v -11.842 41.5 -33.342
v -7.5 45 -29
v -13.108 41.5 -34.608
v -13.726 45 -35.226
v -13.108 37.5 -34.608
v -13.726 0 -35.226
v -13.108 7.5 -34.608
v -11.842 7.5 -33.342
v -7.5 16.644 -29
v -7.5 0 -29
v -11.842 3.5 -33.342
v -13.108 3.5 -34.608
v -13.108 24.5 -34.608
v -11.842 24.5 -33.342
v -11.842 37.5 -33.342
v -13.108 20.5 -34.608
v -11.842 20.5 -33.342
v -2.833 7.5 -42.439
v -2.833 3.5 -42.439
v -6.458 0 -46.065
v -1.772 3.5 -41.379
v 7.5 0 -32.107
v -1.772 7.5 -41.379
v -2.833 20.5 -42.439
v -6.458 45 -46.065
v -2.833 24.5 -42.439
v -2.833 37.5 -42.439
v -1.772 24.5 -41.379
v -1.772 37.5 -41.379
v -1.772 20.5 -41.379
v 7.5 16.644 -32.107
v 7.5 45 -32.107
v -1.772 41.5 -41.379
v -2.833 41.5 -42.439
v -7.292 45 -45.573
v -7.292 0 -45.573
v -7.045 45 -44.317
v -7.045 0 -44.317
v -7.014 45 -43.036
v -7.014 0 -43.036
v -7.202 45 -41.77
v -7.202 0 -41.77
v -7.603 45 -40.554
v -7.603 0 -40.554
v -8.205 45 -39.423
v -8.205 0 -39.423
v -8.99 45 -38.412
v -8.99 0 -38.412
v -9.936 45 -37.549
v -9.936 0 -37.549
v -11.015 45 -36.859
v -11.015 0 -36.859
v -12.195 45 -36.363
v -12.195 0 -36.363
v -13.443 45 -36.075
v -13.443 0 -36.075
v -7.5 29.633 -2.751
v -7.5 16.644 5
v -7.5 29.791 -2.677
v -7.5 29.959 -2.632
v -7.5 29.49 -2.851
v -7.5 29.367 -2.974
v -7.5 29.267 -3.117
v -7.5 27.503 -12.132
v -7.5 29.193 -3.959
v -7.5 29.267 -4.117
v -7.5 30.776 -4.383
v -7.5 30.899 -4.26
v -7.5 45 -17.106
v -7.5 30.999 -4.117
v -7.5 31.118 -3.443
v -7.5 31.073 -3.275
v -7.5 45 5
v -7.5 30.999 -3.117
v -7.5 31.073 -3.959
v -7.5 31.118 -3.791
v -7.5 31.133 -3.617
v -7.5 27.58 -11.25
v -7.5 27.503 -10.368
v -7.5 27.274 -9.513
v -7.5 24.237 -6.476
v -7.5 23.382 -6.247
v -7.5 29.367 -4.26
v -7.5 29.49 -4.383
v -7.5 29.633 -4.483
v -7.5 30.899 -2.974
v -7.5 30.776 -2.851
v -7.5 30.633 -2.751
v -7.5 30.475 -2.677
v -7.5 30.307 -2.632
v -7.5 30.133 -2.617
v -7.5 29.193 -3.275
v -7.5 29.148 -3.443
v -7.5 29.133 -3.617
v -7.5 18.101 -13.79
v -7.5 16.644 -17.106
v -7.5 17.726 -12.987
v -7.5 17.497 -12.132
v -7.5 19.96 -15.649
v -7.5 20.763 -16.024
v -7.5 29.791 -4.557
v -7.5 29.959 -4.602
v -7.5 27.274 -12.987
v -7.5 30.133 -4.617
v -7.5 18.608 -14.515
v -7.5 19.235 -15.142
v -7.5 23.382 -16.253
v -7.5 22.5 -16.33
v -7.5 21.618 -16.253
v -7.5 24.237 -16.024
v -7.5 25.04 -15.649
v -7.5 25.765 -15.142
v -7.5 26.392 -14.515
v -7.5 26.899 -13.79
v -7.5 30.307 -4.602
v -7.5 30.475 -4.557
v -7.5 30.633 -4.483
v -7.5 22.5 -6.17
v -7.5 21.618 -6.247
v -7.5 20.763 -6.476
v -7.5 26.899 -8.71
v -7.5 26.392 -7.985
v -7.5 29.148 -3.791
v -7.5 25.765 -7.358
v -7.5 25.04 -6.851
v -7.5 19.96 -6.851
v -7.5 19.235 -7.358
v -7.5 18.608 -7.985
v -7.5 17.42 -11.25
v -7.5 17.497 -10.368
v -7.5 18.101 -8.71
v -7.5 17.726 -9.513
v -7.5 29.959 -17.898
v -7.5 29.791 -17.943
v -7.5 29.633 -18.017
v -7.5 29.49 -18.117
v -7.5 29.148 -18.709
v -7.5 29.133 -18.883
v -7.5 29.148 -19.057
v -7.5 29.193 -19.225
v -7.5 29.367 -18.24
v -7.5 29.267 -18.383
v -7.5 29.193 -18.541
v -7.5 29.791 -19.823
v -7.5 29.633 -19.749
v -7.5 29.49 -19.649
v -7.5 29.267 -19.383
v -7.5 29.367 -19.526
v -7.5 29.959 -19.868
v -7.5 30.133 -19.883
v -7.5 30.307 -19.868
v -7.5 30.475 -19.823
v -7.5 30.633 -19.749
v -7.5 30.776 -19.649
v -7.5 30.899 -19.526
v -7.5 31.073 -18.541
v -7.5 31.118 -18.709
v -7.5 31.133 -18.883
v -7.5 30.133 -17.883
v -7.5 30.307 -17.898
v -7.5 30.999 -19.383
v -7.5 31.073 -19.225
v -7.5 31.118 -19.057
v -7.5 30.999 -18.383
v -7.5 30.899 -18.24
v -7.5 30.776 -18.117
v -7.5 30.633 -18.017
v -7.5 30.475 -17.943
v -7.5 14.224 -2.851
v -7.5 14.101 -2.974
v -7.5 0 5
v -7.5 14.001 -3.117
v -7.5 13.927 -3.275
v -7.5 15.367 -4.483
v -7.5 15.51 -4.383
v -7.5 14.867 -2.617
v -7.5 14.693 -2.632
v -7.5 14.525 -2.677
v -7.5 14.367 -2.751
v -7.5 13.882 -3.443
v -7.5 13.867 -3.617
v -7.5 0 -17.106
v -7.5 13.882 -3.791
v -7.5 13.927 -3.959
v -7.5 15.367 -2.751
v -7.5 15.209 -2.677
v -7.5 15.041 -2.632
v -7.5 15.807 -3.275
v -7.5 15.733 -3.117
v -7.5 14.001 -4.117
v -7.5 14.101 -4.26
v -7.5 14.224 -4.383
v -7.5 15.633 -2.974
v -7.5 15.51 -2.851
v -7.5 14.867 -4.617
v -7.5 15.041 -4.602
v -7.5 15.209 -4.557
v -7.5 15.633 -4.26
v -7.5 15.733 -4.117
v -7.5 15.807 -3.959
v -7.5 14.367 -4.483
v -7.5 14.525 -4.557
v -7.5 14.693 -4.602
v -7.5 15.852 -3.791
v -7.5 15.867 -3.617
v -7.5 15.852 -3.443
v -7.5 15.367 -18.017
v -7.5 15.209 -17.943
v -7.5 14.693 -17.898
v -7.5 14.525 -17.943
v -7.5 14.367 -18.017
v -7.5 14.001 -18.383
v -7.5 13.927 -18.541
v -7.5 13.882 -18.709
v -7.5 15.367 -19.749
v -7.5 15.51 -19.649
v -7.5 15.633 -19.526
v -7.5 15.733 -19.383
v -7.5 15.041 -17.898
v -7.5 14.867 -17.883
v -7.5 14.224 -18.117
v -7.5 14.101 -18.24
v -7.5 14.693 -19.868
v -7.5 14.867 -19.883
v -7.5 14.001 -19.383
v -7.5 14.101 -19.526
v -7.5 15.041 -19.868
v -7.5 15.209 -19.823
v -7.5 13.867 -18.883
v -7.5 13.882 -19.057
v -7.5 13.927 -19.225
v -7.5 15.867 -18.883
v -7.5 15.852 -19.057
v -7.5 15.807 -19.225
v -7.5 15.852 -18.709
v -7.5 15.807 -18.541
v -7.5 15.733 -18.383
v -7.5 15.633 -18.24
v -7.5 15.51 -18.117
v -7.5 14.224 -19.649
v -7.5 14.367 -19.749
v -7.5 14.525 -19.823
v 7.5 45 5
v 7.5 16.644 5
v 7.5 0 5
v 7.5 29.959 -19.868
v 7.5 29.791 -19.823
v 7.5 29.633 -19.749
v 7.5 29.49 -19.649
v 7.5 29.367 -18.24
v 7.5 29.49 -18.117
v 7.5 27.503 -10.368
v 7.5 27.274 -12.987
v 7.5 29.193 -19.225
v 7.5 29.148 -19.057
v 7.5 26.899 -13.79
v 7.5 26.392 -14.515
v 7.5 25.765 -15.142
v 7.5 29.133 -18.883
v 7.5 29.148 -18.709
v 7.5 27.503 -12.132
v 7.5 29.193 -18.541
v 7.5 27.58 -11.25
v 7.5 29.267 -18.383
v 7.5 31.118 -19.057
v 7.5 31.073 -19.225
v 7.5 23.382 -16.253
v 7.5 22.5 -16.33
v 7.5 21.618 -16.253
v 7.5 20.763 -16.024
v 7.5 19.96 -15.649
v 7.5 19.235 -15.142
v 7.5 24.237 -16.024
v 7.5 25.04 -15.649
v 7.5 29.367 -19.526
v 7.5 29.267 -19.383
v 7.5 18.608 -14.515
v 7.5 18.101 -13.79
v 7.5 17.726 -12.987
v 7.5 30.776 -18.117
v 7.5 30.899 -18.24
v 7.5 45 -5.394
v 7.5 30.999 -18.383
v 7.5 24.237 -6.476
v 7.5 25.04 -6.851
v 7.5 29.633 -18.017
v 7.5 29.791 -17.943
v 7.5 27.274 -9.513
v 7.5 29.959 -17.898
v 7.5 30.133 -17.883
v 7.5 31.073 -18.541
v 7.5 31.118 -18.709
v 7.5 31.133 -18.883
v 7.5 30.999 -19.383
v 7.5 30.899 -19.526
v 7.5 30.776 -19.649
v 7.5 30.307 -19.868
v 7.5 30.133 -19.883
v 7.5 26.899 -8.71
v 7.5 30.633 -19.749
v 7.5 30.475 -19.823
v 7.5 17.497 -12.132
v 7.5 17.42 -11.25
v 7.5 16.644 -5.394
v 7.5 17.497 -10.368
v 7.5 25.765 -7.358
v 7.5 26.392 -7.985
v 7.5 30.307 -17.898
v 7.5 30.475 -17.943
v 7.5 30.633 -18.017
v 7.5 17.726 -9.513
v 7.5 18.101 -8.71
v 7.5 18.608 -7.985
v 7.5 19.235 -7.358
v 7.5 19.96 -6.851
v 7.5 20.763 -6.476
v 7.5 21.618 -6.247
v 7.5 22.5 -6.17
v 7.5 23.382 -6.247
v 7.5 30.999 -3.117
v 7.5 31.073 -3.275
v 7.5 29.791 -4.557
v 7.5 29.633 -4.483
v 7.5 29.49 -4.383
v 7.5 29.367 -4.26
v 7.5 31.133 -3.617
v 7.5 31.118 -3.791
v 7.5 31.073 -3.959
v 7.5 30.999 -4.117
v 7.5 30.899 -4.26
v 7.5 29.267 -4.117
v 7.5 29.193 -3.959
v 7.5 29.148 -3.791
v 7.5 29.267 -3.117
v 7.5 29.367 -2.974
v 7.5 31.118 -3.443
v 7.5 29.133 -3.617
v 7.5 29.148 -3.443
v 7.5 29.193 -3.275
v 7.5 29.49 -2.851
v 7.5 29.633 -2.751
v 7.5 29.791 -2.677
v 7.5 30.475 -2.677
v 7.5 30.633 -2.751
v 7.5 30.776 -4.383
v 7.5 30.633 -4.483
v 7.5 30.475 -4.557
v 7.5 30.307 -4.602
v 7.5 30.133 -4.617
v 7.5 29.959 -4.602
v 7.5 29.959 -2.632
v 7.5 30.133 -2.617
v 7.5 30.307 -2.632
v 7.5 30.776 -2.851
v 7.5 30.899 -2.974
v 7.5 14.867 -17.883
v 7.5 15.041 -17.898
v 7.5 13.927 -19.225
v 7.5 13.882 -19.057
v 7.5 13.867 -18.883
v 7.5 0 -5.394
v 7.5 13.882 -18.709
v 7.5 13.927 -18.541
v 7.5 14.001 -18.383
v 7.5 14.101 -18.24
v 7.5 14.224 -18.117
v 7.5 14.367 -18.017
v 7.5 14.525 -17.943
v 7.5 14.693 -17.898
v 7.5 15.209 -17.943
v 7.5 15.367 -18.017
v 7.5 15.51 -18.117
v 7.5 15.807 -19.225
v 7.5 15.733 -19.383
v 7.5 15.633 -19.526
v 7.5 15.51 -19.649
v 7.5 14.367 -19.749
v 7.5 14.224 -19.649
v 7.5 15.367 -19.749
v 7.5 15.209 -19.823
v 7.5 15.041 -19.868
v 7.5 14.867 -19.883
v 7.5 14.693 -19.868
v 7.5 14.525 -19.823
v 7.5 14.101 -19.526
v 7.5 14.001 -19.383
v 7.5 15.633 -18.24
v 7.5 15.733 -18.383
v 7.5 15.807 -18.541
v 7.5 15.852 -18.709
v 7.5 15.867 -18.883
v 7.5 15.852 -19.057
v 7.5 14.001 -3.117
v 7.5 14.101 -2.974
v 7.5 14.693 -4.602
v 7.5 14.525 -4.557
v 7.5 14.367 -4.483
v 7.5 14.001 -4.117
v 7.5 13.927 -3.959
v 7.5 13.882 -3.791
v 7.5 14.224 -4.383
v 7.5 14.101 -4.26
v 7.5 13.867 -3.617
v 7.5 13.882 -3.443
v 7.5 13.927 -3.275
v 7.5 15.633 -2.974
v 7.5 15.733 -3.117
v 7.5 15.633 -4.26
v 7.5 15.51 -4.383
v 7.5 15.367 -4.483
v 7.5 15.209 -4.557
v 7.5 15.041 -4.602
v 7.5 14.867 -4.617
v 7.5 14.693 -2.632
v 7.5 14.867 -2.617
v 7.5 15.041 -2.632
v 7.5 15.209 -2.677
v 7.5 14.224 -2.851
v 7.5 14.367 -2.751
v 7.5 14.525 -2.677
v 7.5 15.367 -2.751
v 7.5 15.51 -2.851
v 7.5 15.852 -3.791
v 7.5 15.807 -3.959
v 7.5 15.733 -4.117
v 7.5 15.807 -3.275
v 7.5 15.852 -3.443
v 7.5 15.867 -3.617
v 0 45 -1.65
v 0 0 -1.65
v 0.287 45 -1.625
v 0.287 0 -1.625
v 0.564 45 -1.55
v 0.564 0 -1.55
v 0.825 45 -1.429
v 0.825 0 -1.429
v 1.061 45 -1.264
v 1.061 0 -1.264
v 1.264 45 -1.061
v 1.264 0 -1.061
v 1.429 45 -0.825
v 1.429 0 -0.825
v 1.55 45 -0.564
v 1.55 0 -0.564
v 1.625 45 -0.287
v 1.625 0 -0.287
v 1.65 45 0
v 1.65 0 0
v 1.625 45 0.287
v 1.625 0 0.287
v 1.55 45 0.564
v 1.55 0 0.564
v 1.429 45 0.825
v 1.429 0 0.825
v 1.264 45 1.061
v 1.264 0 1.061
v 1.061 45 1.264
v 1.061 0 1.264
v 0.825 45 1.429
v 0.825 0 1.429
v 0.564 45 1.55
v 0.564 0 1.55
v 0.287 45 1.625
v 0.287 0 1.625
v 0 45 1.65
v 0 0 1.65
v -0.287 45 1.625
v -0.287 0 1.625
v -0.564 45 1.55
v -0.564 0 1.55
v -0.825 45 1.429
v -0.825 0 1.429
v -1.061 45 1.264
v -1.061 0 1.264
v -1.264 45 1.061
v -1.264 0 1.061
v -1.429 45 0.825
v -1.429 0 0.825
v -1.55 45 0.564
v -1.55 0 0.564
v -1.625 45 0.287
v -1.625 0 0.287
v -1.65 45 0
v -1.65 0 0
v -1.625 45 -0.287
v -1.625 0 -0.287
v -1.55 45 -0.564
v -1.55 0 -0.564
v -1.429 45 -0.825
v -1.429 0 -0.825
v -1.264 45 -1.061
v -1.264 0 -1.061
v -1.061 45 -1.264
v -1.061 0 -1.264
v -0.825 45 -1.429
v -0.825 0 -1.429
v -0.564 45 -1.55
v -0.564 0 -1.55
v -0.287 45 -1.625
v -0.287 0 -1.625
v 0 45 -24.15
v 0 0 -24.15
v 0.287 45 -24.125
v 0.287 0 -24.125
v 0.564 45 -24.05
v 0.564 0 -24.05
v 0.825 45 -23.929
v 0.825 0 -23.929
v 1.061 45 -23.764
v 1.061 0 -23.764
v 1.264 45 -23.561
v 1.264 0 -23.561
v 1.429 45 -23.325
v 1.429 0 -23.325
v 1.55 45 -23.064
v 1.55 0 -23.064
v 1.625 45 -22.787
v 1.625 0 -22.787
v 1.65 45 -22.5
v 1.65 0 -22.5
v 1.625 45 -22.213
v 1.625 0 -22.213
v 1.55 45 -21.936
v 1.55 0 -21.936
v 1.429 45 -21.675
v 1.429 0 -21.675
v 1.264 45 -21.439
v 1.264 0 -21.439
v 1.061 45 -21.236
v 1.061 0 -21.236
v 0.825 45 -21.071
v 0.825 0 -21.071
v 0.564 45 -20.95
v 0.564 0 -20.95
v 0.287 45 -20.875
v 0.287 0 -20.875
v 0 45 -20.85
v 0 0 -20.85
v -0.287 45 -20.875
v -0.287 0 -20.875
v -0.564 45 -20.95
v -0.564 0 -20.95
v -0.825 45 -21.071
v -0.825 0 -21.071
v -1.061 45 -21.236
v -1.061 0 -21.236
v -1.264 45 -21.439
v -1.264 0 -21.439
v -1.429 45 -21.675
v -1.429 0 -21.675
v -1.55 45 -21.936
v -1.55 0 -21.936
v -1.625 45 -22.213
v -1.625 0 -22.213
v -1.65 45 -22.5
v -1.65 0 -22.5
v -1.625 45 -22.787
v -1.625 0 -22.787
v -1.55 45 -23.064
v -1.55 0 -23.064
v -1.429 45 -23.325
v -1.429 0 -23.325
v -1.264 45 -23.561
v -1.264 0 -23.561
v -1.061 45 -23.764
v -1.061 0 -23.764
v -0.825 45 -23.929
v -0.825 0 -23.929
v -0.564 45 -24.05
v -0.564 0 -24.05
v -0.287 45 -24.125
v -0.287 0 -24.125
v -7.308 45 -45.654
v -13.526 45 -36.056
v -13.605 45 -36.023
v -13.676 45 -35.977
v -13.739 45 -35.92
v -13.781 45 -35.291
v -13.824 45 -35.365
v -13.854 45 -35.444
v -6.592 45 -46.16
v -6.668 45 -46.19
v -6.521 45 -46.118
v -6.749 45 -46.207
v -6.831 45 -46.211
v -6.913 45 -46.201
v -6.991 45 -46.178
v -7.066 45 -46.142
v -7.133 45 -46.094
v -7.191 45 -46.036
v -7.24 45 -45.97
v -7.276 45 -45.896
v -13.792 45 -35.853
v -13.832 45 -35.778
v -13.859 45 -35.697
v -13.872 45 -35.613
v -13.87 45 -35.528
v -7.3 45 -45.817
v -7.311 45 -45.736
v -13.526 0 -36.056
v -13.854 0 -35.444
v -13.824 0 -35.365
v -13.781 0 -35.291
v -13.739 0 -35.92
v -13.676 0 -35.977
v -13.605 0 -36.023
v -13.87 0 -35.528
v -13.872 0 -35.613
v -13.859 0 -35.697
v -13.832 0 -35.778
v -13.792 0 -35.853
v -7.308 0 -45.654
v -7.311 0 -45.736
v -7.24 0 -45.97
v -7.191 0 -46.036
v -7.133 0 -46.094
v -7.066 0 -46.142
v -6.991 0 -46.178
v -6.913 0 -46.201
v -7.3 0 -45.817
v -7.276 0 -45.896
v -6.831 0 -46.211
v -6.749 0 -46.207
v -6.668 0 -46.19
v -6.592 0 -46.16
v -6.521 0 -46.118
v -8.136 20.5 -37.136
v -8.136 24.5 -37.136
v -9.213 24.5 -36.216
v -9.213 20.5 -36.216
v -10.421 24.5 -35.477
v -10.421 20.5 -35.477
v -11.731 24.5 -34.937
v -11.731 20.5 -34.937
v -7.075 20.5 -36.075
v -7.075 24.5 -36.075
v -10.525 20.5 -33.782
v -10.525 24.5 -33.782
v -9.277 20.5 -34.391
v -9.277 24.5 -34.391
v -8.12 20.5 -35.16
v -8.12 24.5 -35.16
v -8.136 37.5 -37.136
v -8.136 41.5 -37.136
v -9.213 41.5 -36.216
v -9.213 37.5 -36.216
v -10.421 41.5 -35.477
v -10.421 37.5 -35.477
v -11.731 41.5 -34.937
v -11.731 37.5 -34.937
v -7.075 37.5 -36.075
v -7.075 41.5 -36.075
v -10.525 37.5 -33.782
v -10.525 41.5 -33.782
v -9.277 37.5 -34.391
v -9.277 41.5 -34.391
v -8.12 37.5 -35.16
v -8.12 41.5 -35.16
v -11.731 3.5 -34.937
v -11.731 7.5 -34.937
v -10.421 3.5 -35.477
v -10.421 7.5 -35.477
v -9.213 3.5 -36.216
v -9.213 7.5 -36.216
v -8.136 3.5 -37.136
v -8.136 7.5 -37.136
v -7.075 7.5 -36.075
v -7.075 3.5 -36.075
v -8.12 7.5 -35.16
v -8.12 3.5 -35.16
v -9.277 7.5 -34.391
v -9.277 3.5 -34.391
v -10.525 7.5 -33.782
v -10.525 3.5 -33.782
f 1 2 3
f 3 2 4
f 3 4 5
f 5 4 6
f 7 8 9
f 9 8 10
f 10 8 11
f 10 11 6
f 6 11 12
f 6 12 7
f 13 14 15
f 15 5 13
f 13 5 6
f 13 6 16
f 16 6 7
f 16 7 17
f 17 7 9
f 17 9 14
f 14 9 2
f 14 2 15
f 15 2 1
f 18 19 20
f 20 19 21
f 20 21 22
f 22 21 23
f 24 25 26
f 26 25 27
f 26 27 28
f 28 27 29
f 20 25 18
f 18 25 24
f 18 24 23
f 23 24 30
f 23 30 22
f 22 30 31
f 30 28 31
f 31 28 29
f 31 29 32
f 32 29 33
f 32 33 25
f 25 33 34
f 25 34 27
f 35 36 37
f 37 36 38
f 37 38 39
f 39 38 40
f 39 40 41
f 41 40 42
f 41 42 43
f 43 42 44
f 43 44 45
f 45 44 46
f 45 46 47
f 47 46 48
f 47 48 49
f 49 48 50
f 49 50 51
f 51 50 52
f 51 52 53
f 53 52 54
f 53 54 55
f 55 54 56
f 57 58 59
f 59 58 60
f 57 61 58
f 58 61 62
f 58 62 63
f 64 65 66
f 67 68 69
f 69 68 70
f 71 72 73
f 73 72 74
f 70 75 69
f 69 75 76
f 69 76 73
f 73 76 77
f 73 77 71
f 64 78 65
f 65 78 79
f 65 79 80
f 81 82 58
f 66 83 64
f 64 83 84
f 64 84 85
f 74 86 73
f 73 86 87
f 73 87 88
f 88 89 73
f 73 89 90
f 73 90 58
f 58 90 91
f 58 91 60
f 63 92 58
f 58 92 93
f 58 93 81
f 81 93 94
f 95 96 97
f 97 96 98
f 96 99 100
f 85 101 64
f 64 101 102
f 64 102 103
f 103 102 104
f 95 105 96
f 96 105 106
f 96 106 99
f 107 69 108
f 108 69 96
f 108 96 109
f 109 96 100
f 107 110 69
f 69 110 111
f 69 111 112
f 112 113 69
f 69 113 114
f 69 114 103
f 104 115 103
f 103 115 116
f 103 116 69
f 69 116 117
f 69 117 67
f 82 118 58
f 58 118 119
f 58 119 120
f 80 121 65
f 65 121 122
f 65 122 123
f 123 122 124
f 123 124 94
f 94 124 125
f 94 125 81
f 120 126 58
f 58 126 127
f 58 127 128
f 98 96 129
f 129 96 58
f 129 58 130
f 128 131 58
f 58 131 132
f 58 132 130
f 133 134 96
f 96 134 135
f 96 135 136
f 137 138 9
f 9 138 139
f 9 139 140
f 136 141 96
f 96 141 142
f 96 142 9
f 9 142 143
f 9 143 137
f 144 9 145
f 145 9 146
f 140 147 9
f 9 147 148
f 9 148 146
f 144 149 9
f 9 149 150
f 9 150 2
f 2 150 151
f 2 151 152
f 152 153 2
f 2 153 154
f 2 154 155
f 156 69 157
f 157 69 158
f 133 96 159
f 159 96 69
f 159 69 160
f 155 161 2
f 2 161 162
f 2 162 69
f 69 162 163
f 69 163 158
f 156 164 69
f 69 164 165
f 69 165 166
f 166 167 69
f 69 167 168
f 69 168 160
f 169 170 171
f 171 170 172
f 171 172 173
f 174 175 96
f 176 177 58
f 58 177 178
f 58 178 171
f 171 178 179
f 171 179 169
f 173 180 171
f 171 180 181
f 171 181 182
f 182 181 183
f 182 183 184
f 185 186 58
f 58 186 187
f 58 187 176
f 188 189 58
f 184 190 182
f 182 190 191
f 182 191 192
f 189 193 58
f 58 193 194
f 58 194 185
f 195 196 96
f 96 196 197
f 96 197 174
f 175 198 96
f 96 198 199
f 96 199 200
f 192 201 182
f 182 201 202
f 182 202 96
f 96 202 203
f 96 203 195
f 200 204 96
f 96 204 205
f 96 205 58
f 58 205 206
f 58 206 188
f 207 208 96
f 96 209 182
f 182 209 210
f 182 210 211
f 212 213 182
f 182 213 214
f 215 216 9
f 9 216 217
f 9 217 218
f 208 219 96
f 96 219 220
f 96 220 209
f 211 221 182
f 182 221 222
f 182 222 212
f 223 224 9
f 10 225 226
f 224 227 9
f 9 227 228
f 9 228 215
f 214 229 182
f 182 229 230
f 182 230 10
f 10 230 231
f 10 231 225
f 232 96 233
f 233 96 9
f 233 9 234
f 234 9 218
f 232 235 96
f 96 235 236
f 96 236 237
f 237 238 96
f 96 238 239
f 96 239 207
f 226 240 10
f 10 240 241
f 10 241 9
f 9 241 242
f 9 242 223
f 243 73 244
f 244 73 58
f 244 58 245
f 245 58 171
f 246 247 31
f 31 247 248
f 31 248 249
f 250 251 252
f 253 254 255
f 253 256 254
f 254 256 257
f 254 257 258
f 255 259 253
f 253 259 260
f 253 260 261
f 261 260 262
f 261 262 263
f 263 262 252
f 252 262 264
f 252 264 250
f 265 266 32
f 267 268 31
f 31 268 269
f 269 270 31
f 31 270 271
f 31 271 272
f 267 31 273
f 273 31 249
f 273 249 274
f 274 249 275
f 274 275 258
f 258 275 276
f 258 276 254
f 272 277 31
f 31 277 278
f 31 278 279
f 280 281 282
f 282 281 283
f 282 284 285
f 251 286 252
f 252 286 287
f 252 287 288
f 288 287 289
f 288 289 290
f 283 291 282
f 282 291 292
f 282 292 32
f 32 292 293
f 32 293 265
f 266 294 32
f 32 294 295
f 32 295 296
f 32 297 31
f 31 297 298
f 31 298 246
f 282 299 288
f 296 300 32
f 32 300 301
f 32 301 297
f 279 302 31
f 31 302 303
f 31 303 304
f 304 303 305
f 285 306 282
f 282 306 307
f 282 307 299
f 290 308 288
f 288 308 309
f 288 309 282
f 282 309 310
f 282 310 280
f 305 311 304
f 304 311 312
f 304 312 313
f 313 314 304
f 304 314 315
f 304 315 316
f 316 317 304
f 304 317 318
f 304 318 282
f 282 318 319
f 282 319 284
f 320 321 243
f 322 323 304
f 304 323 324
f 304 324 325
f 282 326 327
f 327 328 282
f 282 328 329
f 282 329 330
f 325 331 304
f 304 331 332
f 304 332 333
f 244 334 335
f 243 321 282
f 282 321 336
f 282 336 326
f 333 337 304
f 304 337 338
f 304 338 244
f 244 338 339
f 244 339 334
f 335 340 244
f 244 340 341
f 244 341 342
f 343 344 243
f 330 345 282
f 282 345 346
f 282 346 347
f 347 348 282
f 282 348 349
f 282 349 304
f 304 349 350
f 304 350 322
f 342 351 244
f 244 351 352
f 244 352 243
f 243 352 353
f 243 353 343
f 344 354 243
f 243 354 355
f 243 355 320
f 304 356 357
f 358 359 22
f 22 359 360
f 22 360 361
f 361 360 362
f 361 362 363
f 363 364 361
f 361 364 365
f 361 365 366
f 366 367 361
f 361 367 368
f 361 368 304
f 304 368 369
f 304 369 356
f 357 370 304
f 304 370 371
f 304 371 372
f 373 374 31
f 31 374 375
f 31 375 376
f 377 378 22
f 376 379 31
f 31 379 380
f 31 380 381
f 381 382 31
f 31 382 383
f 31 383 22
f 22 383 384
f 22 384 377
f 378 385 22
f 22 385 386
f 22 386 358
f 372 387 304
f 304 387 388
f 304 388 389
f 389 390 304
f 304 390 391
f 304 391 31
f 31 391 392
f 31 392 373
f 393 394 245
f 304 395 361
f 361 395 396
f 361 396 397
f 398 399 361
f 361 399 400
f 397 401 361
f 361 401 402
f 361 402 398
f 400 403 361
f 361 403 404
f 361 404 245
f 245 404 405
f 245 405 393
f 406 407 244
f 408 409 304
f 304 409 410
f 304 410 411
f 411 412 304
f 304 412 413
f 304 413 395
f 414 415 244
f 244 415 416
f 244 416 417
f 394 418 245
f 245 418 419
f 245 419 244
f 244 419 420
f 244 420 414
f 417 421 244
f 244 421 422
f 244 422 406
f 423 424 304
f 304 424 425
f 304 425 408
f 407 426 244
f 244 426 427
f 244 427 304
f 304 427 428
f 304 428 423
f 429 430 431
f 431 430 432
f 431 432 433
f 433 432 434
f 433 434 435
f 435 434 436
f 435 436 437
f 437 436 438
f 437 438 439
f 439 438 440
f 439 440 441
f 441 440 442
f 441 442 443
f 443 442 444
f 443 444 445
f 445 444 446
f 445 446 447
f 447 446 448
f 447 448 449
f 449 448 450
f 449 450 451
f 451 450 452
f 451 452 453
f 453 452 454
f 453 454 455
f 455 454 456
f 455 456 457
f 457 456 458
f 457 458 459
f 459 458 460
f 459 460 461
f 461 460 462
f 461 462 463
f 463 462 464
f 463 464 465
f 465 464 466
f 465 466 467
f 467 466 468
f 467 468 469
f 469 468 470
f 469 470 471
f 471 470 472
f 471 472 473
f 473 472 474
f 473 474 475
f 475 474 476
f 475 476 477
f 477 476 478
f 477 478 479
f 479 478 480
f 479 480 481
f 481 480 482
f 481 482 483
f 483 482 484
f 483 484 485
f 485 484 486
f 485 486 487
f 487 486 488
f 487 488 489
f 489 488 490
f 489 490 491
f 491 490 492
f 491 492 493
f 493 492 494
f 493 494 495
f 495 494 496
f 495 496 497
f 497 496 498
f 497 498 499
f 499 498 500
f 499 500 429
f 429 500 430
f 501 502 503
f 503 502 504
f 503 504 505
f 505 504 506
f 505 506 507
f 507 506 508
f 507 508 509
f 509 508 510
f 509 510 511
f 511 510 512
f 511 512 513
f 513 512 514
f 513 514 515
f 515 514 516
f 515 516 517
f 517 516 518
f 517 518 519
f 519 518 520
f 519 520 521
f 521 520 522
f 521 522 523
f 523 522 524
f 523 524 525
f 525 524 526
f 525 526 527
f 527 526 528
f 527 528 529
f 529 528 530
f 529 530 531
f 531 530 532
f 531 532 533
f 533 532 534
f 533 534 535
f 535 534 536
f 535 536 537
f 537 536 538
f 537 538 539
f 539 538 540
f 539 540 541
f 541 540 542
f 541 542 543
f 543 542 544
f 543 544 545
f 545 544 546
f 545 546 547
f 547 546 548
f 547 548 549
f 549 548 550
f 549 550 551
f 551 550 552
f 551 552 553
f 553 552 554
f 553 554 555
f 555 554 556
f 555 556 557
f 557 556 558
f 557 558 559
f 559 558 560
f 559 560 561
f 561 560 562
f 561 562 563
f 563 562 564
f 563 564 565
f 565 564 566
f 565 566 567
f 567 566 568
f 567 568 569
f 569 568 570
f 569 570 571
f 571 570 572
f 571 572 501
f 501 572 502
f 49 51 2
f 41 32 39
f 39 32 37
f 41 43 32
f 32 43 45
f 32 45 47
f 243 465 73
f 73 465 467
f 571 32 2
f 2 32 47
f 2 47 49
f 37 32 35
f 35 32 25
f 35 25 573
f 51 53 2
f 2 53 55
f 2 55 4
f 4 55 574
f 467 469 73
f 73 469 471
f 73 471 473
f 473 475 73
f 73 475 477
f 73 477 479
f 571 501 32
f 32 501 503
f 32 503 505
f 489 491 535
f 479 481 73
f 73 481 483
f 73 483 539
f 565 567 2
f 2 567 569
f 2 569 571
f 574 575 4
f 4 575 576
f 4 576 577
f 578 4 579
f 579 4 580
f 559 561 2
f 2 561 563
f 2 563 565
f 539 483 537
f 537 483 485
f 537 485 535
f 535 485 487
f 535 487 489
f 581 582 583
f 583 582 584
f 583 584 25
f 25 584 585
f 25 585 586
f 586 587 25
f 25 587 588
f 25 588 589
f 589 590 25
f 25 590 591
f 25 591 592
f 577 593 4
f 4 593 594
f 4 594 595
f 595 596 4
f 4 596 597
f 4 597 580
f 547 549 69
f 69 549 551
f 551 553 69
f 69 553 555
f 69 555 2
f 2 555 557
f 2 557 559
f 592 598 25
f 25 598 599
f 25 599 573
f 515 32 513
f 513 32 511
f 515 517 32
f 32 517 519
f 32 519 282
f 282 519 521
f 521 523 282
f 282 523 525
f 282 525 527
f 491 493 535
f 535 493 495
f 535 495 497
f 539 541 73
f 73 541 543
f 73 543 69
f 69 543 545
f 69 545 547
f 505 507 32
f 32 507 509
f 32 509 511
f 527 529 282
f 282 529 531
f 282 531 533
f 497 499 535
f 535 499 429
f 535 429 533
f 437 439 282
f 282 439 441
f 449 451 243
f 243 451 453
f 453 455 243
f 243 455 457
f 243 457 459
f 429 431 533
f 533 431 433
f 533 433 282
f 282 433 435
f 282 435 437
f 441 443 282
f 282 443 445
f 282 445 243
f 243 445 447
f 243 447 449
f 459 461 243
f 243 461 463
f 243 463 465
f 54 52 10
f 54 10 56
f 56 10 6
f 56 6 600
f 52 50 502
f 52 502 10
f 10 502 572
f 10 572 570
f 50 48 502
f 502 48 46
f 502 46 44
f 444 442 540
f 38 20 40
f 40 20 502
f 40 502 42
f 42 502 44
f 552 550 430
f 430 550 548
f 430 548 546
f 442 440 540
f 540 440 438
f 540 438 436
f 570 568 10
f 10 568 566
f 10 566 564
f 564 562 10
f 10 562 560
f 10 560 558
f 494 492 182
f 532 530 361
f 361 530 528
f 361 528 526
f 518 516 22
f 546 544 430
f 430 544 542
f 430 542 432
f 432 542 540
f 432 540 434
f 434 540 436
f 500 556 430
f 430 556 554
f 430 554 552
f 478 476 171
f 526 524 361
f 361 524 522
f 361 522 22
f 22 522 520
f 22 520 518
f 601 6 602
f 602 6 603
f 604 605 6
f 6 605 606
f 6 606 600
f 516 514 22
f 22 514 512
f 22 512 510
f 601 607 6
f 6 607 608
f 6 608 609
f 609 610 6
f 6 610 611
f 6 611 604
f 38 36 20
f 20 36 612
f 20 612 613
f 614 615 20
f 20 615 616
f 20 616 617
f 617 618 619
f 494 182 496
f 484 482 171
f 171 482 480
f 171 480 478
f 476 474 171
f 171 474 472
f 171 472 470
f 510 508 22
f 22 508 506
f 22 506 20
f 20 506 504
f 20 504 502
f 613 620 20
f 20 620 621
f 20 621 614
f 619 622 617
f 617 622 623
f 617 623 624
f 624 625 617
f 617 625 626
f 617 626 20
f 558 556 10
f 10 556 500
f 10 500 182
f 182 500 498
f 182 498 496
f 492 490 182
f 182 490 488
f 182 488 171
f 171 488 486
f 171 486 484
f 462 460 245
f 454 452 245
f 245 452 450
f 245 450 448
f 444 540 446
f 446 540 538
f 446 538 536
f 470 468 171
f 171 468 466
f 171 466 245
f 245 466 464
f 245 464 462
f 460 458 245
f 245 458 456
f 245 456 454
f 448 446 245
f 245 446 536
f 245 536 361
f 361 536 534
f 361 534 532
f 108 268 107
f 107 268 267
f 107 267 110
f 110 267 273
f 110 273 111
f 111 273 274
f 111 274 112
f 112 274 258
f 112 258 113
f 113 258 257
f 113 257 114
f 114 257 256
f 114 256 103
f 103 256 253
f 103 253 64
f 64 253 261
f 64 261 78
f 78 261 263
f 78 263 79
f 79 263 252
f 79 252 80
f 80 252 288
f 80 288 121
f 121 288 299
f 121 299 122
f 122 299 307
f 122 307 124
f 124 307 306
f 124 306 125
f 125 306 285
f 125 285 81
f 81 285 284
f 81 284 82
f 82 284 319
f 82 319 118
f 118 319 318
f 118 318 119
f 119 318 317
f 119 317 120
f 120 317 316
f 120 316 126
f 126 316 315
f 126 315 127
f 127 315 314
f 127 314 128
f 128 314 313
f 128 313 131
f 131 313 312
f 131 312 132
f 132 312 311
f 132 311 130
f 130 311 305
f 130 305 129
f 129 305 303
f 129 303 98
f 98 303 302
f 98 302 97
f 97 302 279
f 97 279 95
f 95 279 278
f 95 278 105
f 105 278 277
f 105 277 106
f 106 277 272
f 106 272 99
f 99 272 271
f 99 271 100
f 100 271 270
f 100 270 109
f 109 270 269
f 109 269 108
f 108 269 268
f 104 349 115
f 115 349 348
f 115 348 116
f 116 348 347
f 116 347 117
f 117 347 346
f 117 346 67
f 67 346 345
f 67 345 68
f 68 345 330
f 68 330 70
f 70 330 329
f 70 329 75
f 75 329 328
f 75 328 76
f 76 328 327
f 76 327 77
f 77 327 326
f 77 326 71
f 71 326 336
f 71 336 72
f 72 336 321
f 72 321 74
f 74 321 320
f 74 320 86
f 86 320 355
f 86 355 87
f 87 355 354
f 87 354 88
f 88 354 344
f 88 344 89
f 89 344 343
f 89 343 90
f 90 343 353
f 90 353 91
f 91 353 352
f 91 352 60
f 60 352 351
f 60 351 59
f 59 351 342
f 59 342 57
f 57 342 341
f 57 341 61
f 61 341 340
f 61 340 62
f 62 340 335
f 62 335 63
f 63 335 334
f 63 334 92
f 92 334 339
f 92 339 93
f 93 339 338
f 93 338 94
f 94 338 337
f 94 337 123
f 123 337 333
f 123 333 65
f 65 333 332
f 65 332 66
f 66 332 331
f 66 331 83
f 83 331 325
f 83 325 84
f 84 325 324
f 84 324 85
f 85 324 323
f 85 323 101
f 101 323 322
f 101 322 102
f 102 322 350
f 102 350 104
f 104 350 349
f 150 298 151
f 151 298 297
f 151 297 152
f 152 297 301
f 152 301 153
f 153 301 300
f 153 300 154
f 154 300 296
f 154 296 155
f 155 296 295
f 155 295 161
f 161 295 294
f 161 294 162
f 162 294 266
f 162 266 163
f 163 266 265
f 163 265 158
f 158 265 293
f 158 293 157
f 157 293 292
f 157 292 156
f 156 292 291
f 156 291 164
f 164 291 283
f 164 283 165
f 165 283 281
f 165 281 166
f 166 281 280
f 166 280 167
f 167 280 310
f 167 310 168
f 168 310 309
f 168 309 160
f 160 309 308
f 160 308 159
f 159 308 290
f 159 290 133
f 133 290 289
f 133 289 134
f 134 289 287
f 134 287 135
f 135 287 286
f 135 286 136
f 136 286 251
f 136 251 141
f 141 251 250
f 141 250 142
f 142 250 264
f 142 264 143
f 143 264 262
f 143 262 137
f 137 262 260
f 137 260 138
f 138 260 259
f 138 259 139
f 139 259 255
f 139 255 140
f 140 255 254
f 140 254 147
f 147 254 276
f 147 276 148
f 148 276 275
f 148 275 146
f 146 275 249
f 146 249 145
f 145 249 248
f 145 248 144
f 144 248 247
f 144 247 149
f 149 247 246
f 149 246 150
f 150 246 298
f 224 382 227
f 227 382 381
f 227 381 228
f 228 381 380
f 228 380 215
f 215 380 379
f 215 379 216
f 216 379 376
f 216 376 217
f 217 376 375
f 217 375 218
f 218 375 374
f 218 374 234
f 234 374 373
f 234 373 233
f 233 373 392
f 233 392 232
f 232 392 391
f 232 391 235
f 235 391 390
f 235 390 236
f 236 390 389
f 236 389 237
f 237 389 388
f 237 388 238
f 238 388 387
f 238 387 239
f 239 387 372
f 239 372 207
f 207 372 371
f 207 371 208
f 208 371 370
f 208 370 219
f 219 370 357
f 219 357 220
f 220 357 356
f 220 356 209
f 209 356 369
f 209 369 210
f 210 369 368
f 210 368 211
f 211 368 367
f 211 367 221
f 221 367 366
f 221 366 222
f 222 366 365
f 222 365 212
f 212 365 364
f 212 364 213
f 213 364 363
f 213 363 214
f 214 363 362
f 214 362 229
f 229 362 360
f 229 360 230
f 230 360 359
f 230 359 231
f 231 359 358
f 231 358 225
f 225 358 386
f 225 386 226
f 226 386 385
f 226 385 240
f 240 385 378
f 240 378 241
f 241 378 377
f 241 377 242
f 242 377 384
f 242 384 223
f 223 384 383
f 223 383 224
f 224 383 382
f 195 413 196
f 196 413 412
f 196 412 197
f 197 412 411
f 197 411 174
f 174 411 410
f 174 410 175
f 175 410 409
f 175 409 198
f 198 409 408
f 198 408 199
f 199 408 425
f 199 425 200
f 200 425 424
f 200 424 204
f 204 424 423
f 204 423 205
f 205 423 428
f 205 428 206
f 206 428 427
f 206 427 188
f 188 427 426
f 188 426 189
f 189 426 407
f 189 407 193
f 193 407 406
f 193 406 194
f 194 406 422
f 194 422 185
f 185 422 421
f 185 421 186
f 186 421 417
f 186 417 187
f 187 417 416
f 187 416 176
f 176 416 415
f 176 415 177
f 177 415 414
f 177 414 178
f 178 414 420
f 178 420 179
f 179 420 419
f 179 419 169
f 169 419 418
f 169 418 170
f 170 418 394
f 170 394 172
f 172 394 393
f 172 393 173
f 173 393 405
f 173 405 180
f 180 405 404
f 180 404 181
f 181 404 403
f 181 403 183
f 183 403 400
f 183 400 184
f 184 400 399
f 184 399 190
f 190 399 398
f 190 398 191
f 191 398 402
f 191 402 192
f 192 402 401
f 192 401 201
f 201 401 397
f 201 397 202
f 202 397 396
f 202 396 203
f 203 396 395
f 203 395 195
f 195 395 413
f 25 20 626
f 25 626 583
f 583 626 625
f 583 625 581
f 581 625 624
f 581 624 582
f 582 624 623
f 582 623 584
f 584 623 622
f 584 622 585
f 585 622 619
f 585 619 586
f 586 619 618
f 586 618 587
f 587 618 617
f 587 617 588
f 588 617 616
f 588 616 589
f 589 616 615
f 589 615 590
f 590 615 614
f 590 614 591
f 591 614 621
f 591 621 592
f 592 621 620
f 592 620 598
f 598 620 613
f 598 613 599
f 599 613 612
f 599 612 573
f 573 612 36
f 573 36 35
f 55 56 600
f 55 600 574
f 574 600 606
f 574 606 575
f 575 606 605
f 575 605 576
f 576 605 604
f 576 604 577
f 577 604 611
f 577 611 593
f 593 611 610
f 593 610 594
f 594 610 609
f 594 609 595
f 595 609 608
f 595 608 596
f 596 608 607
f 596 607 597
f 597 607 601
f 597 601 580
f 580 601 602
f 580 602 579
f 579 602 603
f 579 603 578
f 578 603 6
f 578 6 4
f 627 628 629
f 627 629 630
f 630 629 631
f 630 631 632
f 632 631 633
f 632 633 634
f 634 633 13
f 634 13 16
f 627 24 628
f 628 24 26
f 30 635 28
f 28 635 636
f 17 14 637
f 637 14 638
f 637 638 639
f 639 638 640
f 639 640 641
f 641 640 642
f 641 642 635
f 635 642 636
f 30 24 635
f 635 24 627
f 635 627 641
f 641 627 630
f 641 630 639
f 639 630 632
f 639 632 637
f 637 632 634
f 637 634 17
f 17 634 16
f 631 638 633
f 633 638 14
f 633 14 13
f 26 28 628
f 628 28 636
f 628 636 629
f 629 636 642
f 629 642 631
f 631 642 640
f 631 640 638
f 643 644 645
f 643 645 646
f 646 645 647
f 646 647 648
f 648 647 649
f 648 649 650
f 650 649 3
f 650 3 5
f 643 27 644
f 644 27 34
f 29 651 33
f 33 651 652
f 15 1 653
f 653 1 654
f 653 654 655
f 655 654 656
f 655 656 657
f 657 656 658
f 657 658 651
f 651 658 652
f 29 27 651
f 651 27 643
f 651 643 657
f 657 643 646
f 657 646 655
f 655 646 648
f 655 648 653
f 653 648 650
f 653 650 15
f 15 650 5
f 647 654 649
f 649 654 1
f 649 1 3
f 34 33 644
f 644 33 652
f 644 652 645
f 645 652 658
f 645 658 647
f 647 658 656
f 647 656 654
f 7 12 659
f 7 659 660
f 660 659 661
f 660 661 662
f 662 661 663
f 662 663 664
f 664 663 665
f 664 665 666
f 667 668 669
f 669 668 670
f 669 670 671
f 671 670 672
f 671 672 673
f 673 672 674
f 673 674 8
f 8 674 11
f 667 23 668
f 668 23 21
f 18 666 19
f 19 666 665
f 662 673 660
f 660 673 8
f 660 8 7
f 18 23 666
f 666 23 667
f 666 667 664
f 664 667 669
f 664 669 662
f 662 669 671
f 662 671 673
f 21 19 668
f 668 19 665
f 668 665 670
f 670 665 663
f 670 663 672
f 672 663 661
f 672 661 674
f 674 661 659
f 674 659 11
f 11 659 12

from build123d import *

# Parameters (mm, degrees)
SKETCH1_R           = 1.7
BOSS_EXTRUDE1_DEPTH = 45
CUT_EXTRUDE1_REACH  = 71.934
SKETCH2_R           = 5.0800000000000045
SKETCH2_R_2         = 1.0000000000000009
SKETCH2_R_3         = 1.0000000000000018
FILLET1_R           = 0.5
CUT_EXTRUDE2_DEPTH  = 2
CUT_EXTRUDE3_START  = 17
CUT_EXTRUDE3_DEPTH  = 2


with BuildPart() as part:
    # Sketch1 → Boss-Extrude1 (new body)
    with BuildSketch(Plane(origin=(0, 0, 0), x_dir=(1, 0, 0), z_dir=(0, 1, 0))):
        with BuildLine():
            Line((-7.499999999999999, -5.000000000000001), (7.500000000000001, -4.999999999999999))
            Line((7.500000000000001, -5), (7.499999999999998, 32.10660171779804))
            Line((7.499999999999998, 32.10660171779804), (-9.196699141100867, 48.80330085889908))
            ThreePointArc((-9.196699141100867, 48.80330085889908), (-7.57090350616536, 40.62987425726181), (-14.499999999999998, 36))
            Line((-14.499999999999998, 36), (-7.5, 28.999999999999925))
            Line((-7.5, 28.99999999999993), (-7.499999999999999, -5.000000000000001))
        make_face()
        Circle(SKETCH1_R, mode=Mode.SUBTRACT)
        with Locations((0, 22.5)):
            Circle(SKETCH1_R, mode=Mode.SUBTRACT)
    extrude(amount=BOSS_EXTRUDE1_DEPTH)

    # Sketch2 → Cut-Extrude1 (cut, up to next)
    with BuildSketch(Plane(origin=(7.5, 0, -8.8e-16), x_dir=(-1.2e-16, 0, -1), z_dir=(1, 0, -1.2e-16)), mode=Mode.PRIVATE) as cut_extrude1_sk1:
        with Locations((11.25, 22.5)):
            Circle(SKETCH2_R)
    cut_extrude1_tool1 = extrude(cut_extrude1_sk1.sketch, amount=-CUT_EXTRUDE1_REACH, mode=Mode.PRIVATE) & part.part
    # Sketch2 → Cut-Extrude1 (cut, up to next)
    with BuildSketch(Plane(origin=(7.5, 0, -8.8e-16), x_dir=(-1.2e-16, 0, -1), z_dir=(1, 0, -1.2e-16)), mode=Mode.PRIVATE) as cut_extrude1_sk2:
        with Locations((3.616999999999997, 30.133)):
            Circle(SKETCH2_R_2)
    cut_extrude1_tool2 = extrude(cut_extrude1_sk2.sketch, amount=-CUT_EXTRUDE1_REACH, mode=Mode.PRIVATE) & part.part
    # Sketch2 → Cut-Extrude1 (cut, up to next)
    with BuildSketch(Plane(origin=(7.5, 0, -8.8e-16), x_dir=(-1.2e-16, 0, -1), z_dir=(1, 0, -1.2e-16)), mode=Mode.PRIVATE) as cut_extrude1_sk3:
        with Locations((18.882999999999996, 30.133)):
            Circle(SKETCH2_R_3)
    cut_extrude1_tool3 = extrude(cut_extrude1_sk3.sketch, amount=-CUT_EXTRUDE1_REACH, mode=Mode.PRIVATE) & part.part
    # Sketch2 → Cut-Extrude1 (cut, up to next)
    with BuildSketch(Plane(origin=(7.5, 0, -8.8e-16), x_dir=(-1.2e-16, 0, -1), z_dir=(1, 0, -1.2e-16)), mode=Mode.PRIVATE) as cut_extrude1_sk4:
        with Locations((18.883, 14.867)):
            Circle(SKETCH2_R_3)
    cut_extrude1_tool4 = extrude(cut_extrude1_sk4.sketch, amount=-CUT_EXTRUDE1_REACH, mode=Mode.PRIVATE) & part.part
    # Sketch2 → Cut-Extrude1 (cut, up to next)
    with BuildSketch(Plane(origin=(7.5, 0, -8.8e-16), x_dir=(-1.2e-16, 0, -1), z_dir=(1, 0, -1.2e-16)), mode=Mode.PRIVATE) as cut_extrude1_sk5:
        with Locations((3.6169999999999987, 14.867)):
            Circle(SKETCH2_R_2)
    cut_extrude1_tool5 = extrude(cut_extrude1_sk5.sketch, amount=-CUT_EXTRUDE1_REACH, mode=Mode.PRIVATE) & part.part
    add(cut_extrude1_tool1.solids().sort_by_distance((7.5, 22.5, -11.25))[0], mode=Mode.SUBTRACT)
    add(cut_extrude1_tool2.solids().sort_by_distance((7.5, 30.133, -3.617))[0], mode=Mode.SUBTRACT)
    add(cut_extrude1_tool3.solids().sort_by_distance((7.5, 30.133, -18.883))[0], mode=Mode.SUBTRACT)
    add(cut_extrude1_tool4.solids().sort_by_distance((7.5, 14.867, -18.883))[0], mode=Mode.SUBTRACT)
    add(cut_extrude1_tool5.solids().sort_by_distance((7.5, 14.867, -3.617))[0], mode=Mode.SUBTRACT)

    # Fillet1
    fillet1_edges = [part.edges().sort_by_distance(p)[0] for p in [
        (-9.196699141100865, 22.5, -48.80330085889908),
        (-14.499999999999998, 22.5, -36),
    ]]
    fillet(fillet1_edges, radius=FILLET1_R)

    # Sketch3 → Cut-Extrude2 (cut, symmetric)
    with BuildSketch(Plane(origin=(0, 22.5, 0), x_dir=(1, 0, 0), z_dir=(0, 1, 0))):
        with BuildLine():
            Line((-8.136038969321103, 37.136038969321035), (-2.832738110421976, 42.43933982822012))
            Line((-2.832738110421976, 42.43933982822012), (-1.7720779386421608, 41.37867965644029))
            Line((-1.7720779386421608, 41.37867965644029), (-7.075378797541292, 36.07537879754122))
            ThreePointArc((-7.075378797541292, 36.07537879754122), (-9.276718417433415, 34.39135962345529), (-11.841997191011883, 33.34199719101184))
            Line((-11.841997191011883, 33.34199719101184), (-13.108259049699228, 34.608259049699214))
            ThreePointArc((-13.108259049699228, 34.608259049699214), (-10.42137938330202, 35.47722904072127), (-8.136038969321103, 37.136038969321035))
        make_face()
    extrude(amount=CUT_EXTRUDE2_DEPTH, both=True, mode=Mode.SUBTRACT)

    # Sketch3<2> → Cut-Extrude3 (cut, symmetric)
    with BuildSketch(Plane(origin=(0, 22.5, 0), x_dir=(1, 0, 0), z_dir=(0, 1, 0)).offset(CUT_EXTRUDE3_START)):
        with BuildLine():
            Line((-8.136038969321103, 37.136038969321035), (-2.832738110421976, 42.43933982822012))
            Line((-2.832738110421976, 42.43933982822012), (-1.7720779386421608, 41.37867965644029))
            Line((-1.7720779386421608, 41.37867965644029), (-7.075378797541292, 36.07537879754122))
            ThreePointArc((-7.075378797541292, 36.07537879754122), (-9.276718417433415, 34.39135962345529), (-11.841997191011883, 33.34199719101184))
            Line((-11.841997191011883, 33.34199719101184), (-13.108259049699228, 34.608259049699214))
            ThreePointArc((-13.108259049699228, 34.608259049699214), (-10.42137938330202, 35.47722904072127), (-8.136038969321103, 37.136038969321035))
        make_face()
    cut_extrude3 = extrude(amount=CUT_EXTRUDE3_DEPTH, both=True, mode=Mode.SUBTRACT)

    # Mirror1: Cut-Extrude3 across plane
    add(cut_extrude3.mirror(Plane.ZX.offset(22.5)), mode=Mode.SUBTRACT)


solid = part.part
